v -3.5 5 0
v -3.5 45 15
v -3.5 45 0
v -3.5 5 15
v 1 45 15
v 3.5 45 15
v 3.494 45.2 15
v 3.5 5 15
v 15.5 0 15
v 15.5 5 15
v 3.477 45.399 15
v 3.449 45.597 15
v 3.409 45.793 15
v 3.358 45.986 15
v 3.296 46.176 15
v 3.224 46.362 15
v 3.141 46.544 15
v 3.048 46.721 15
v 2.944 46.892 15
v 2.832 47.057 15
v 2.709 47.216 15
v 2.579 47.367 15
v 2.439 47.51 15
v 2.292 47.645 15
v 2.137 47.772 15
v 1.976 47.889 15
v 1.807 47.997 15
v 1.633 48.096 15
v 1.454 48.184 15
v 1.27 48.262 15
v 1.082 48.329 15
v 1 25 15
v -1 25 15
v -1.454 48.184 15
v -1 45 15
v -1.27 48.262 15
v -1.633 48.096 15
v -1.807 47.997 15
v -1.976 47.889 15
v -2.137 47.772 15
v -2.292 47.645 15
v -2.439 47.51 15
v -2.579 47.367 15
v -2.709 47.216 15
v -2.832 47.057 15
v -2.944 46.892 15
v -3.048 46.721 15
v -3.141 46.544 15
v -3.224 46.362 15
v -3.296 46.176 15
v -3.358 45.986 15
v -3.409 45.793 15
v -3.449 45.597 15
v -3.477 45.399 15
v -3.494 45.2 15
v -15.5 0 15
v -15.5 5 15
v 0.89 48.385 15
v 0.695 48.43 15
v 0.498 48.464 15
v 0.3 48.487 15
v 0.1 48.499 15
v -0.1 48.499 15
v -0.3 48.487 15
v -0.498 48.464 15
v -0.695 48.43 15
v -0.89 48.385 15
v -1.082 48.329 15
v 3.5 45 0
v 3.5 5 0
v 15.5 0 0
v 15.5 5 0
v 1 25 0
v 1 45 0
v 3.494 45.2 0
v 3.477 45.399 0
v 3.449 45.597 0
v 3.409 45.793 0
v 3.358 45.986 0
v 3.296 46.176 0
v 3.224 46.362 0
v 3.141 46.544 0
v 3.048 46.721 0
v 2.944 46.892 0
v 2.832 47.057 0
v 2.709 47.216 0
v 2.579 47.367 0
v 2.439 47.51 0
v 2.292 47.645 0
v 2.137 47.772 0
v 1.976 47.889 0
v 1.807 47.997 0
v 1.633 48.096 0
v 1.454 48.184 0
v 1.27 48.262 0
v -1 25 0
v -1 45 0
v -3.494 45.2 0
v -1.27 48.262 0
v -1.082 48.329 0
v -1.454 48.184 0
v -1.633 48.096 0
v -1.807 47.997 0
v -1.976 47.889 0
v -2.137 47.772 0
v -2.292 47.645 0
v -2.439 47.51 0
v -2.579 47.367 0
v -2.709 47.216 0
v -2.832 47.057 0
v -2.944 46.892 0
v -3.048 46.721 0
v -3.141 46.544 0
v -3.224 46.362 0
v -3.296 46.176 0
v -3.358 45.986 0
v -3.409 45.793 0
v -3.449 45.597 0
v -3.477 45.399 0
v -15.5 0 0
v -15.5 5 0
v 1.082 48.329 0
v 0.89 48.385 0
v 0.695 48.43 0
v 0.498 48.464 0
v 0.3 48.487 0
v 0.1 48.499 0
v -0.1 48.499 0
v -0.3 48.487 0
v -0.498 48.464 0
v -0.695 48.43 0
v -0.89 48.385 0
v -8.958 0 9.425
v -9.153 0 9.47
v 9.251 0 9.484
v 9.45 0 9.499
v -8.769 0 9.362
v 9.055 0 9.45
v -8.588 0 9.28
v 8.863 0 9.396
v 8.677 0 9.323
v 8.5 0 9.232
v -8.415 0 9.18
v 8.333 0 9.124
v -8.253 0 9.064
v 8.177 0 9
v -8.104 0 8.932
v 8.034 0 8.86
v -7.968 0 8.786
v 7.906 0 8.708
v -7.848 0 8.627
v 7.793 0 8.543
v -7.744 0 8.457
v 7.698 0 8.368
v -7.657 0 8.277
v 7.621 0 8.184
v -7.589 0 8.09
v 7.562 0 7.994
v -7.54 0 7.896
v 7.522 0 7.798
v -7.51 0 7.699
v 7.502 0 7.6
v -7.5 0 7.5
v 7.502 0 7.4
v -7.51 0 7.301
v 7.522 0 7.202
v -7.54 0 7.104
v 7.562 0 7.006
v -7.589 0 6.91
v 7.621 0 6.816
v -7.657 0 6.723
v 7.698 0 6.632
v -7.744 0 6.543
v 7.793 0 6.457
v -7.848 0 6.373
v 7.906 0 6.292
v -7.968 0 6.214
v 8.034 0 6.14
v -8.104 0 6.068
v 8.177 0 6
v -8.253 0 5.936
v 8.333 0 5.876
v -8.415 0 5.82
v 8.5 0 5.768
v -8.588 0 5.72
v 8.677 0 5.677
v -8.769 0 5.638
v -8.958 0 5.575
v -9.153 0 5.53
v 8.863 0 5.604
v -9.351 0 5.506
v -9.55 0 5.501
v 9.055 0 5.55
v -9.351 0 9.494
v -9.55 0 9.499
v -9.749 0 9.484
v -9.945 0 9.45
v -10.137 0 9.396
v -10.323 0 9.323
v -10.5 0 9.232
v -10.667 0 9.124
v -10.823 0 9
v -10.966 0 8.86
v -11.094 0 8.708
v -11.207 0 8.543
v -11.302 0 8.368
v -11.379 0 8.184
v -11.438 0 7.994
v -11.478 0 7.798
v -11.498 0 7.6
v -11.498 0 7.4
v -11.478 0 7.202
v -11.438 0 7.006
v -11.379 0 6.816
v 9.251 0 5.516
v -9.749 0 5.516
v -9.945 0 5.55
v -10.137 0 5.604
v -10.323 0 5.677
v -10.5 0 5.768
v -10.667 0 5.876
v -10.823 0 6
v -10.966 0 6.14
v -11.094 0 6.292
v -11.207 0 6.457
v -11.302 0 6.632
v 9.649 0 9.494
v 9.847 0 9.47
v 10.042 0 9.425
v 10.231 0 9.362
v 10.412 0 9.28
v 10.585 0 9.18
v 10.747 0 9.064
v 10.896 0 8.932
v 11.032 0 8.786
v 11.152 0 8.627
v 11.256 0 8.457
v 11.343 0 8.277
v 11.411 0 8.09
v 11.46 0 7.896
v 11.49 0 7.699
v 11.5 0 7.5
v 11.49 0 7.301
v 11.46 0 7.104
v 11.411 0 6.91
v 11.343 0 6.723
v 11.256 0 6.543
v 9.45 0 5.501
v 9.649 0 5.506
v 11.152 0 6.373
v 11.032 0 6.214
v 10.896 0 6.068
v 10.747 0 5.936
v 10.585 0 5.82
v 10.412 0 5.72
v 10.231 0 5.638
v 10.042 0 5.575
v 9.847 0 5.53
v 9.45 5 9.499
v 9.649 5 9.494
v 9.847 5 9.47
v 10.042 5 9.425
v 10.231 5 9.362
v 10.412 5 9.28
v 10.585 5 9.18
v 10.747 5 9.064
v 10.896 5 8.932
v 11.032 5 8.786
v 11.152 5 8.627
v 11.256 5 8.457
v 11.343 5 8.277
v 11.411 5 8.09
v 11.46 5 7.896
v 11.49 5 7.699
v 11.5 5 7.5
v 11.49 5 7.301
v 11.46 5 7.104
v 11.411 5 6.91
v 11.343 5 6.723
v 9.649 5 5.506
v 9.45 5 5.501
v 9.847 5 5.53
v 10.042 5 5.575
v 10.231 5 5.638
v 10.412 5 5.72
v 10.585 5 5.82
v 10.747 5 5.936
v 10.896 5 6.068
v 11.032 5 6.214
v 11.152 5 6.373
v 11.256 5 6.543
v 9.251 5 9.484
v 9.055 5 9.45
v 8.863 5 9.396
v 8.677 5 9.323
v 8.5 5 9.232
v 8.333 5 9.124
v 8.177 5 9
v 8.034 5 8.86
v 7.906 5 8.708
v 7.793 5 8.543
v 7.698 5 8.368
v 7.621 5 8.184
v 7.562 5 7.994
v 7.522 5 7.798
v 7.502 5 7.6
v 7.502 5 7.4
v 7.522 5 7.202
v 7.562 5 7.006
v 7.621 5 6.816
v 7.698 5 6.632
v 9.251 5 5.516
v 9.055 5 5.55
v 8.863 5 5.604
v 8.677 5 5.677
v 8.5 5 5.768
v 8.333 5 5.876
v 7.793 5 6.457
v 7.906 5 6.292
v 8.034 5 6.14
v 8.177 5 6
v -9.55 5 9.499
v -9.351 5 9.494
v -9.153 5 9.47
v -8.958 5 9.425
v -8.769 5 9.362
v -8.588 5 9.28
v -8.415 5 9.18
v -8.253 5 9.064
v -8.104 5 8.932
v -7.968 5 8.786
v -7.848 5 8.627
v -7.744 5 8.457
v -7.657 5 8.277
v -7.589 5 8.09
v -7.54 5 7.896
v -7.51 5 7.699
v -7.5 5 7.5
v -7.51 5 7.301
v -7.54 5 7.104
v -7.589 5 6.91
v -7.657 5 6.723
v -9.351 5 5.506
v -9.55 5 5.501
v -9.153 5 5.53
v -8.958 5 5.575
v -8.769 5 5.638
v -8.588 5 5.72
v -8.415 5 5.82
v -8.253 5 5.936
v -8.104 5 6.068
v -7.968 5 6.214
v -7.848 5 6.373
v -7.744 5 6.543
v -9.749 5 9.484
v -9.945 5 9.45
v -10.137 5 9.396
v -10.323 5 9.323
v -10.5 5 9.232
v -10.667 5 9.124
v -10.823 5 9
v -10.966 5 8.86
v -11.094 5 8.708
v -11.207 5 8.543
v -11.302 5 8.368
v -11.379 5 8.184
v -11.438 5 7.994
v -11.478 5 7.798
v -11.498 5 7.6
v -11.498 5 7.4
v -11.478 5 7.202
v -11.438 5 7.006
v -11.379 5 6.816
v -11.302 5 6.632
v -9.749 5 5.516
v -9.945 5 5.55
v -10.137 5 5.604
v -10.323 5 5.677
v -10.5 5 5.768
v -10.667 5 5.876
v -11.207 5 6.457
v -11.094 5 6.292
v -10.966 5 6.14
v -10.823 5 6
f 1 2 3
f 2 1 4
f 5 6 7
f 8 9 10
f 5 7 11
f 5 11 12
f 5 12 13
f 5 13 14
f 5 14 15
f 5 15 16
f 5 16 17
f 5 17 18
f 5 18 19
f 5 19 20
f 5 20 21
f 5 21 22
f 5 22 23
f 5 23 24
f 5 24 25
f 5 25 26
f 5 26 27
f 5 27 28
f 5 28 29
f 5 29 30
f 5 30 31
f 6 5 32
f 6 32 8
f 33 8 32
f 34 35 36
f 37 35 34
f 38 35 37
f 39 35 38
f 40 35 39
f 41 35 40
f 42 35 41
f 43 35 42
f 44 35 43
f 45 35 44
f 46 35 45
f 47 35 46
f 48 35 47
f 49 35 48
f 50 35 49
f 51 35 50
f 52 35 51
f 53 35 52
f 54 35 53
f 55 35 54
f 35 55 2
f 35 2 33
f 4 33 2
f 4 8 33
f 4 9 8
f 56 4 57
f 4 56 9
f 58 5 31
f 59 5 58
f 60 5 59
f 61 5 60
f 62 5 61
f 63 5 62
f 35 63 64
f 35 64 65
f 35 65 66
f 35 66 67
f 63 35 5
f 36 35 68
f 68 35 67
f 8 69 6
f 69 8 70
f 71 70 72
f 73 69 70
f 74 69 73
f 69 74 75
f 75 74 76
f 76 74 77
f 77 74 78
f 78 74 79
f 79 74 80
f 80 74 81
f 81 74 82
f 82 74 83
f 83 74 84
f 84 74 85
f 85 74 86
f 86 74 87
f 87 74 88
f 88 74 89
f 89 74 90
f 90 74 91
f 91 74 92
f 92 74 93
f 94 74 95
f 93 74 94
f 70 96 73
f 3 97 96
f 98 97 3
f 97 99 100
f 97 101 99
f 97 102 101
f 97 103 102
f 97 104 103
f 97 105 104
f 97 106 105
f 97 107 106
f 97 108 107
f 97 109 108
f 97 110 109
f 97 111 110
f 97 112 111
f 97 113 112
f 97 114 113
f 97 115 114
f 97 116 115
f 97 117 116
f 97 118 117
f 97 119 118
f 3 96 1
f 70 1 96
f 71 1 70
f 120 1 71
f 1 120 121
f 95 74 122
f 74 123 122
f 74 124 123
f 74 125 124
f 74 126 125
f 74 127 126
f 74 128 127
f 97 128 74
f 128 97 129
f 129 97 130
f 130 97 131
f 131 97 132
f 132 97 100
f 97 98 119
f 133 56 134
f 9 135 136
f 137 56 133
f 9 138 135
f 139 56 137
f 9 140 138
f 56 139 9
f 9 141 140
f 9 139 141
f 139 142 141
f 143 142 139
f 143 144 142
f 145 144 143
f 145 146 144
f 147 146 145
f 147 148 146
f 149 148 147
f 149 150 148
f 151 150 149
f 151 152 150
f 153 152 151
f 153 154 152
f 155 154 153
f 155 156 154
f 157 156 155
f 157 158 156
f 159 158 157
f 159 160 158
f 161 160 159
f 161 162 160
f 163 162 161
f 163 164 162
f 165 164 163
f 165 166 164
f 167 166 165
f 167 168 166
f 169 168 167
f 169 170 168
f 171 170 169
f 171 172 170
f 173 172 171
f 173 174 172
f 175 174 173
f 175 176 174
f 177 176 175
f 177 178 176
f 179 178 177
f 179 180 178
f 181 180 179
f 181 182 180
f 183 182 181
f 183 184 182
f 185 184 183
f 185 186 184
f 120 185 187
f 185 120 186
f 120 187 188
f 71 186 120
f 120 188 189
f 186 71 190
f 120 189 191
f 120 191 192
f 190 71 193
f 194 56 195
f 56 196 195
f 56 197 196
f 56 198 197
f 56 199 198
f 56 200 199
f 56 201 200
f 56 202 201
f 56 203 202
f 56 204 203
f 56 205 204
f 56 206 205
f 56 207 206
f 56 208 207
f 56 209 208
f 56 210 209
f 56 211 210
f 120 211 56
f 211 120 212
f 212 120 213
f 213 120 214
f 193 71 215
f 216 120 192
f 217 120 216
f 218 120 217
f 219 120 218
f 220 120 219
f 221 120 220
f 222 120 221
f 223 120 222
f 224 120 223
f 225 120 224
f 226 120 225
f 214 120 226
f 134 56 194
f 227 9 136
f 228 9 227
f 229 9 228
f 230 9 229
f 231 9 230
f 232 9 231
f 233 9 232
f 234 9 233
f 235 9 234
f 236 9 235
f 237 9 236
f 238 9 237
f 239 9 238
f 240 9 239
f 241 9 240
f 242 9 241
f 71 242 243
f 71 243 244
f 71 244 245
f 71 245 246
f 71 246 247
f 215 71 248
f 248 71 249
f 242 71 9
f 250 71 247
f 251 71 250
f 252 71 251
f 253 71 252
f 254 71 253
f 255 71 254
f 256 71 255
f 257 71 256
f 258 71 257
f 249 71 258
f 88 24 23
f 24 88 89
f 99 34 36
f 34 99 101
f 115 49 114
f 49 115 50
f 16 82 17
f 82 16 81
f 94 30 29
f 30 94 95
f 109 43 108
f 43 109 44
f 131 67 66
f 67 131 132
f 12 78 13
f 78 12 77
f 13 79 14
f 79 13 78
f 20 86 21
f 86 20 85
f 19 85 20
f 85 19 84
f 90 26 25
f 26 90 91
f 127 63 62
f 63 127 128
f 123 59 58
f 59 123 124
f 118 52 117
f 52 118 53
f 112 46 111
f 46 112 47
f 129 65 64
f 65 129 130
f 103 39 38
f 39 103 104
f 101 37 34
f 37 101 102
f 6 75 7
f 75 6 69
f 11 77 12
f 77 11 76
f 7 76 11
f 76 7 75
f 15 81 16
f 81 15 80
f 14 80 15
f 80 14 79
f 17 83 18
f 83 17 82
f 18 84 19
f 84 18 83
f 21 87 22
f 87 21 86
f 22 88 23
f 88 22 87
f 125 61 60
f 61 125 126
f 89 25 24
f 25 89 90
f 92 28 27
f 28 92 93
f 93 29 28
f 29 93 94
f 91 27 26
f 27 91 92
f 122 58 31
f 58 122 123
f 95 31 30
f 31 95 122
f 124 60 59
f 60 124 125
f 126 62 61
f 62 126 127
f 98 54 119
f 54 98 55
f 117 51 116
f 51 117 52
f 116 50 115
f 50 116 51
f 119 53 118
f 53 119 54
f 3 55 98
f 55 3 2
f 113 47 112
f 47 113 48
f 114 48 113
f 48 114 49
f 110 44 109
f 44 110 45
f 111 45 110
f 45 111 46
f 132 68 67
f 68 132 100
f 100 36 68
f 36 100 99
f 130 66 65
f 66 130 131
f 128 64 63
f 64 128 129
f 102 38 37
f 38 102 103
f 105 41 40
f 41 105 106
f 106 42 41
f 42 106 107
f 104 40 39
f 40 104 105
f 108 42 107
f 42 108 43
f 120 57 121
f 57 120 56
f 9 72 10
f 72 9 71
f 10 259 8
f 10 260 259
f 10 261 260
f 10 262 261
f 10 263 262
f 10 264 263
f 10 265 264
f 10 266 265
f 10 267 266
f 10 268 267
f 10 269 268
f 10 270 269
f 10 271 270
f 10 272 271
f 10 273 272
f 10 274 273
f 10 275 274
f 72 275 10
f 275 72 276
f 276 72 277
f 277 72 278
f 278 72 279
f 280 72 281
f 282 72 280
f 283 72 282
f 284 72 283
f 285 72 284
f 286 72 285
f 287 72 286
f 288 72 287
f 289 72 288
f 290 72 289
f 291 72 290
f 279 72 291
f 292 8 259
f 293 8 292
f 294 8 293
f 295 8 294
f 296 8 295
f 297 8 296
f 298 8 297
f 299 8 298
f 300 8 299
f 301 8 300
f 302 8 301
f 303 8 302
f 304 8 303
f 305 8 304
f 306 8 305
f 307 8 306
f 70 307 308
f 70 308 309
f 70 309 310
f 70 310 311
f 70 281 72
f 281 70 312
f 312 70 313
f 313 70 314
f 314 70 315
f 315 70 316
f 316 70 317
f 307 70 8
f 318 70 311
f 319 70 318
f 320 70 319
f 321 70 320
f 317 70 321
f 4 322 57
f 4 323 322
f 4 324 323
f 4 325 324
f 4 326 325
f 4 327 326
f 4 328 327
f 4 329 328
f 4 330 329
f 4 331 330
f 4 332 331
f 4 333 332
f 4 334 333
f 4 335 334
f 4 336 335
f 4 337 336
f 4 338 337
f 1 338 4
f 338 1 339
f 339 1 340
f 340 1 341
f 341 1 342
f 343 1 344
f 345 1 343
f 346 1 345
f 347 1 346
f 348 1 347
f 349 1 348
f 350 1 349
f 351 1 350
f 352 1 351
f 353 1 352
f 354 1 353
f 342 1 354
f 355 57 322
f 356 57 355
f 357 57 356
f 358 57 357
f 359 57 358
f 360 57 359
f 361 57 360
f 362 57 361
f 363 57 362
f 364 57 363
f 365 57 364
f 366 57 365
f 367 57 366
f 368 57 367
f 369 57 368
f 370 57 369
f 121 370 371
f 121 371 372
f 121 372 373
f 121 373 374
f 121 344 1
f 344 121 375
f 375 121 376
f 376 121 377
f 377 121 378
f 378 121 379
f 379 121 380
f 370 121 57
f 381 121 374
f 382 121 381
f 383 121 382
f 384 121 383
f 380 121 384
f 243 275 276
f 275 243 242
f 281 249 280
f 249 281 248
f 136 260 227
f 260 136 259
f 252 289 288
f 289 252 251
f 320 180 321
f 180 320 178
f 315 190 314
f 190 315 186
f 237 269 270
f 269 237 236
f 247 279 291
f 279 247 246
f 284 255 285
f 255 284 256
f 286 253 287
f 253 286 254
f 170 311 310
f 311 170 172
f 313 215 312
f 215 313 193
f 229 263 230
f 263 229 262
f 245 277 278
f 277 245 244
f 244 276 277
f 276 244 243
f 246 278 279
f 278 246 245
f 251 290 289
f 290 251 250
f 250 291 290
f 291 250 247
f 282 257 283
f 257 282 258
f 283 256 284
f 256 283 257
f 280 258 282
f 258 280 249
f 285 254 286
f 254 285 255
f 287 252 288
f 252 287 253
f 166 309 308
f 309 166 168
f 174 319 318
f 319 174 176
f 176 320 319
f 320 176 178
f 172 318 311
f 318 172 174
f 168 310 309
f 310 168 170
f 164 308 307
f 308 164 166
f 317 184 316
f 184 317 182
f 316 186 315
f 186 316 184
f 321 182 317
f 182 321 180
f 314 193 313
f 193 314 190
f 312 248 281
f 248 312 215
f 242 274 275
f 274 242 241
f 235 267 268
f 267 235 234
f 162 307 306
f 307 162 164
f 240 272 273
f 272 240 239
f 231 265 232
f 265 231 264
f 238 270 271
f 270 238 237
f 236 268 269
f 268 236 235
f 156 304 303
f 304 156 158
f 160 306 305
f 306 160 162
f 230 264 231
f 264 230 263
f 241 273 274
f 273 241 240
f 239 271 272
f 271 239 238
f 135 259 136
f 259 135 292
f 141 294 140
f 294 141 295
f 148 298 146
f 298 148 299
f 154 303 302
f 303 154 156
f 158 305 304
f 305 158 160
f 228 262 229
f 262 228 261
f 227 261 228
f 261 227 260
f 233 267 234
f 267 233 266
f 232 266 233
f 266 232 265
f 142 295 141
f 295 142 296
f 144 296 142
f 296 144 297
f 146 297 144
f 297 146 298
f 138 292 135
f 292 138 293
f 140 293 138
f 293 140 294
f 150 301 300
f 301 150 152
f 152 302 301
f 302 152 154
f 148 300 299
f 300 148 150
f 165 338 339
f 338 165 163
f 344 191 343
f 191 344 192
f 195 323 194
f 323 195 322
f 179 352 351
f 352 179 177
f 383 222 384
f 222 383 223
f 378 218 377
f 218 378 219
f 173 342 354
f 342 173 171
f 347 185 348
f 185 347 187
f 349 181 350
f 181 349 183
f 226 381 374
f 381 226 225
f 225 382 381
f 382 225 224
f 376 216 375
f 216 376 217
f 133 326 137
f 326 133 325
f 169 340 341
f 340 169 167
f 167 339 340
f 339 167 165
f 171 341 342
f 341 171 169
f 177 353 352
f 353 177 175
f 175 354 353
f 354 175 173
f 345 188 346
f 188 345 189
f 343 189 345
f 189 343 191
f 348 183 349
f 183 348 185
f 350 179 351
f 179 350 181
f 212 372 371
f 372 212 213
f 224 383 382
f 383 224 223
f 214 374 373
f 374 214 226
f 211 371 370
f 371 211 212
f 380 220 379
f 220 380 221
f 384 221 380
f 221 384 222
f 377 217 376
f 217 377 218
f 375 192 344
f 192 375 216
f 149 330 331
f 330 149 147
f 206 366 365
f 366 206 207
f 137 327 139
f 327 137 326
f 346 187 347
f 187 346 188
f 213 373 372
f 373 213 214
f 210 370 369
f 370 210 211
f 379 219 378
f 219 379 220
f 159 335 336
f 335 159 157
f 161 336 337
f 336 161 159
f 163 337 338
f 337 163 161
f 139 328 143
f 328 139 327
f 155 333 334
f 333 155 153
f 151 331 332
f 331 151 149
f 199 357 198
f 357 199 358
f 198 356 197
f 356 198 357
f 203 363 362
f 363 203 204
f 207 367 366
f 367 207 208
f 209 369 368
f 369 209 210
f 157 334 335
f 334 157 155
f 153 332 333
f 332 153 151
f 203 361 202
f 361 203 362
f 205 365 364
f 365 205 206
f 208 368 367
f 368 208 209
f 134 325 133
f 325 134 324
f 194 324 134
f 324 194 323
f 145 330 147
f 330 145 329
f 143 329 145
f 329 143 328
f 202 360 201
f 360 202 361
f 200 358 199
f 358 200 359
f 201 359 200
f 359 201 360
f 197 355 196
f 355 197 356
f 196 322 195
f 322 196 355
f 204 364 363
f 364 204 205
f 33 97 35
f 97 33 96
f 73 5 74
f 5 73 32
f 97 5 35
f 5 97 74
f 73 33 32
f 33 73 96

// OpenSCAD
/**
 * Project Name : Pet-o-Nator
 *
 * Author: Carlos Eduardo Foltran
 * GitHub: https://github.com/Nartlof/Pet-o-nator
 * Thingiverse: [Thingiverse Project URL]
 * License: Creative Commons CC0 1.0 Universal (CC0 1.0)
 * Description: This is a guide for the PET tape
 *
 * Date Created: 2023-03-21
 * Last Updated: 2025-03-26
 *
 * This OpenSCAD file is provided under the Creative Commons CC0 1.0 Universal (CC0 1.0) License.
 * You are free to use, modify, and distribute this design for any purpose, without any restrictions.
 *
 * For more details about the CC0 license, visit: https://creativecommons.org/publicdomain/zero/1.0/
 */

TapeThick = 2.0;
TapeWidth = 20;
BlockMinThickness = 5;
Lenght = 15;
NozzleHigth = 35;
Screw = 4;

BlockBaseThickness = BlockMinThickness;
BlockThickness = BlockMinThickness + TapeThick;
BlockHeigth = NozzleHigth + TapeWidth / 2;
BlockBase = Screw * 6 + BlockThickness;

Gap = .25;

$fa = ($preview) ? $fa : 1;
$fs = ($preview) ? $fs : .2;

difference()
{
    union()
    {
        translate([ -BlockThickness / 2, 0, 0 ]) cube([ BlockThickness, BlockHeigth, Lenght ]);
        translate([ 0, BlockHeigth, 0 ]) cylinder(d = BlockThickness, h = Lenght);
        translate([ -BlockBase / 2, 0, 0 ]) cube([ BlockBase, BlockBaseThickness, Lenght ]);
    }
    translate([ 0, NozzleHigth, Lenght / 2 ]) cube([ TapeThick, TapeWidth, Lenght + 1 ], center = true);
    for (i = [ 1, -1 ])
    {
        translate([ i * (BlockThickness / 2 + 1.5 * Screw), -Gap, Lenght / 2 ]) rotate([ -90, 0, 0 ])
            cylinder(d = Screw, h = BlockBaseThickness + 2 * Gap);
    }
}
